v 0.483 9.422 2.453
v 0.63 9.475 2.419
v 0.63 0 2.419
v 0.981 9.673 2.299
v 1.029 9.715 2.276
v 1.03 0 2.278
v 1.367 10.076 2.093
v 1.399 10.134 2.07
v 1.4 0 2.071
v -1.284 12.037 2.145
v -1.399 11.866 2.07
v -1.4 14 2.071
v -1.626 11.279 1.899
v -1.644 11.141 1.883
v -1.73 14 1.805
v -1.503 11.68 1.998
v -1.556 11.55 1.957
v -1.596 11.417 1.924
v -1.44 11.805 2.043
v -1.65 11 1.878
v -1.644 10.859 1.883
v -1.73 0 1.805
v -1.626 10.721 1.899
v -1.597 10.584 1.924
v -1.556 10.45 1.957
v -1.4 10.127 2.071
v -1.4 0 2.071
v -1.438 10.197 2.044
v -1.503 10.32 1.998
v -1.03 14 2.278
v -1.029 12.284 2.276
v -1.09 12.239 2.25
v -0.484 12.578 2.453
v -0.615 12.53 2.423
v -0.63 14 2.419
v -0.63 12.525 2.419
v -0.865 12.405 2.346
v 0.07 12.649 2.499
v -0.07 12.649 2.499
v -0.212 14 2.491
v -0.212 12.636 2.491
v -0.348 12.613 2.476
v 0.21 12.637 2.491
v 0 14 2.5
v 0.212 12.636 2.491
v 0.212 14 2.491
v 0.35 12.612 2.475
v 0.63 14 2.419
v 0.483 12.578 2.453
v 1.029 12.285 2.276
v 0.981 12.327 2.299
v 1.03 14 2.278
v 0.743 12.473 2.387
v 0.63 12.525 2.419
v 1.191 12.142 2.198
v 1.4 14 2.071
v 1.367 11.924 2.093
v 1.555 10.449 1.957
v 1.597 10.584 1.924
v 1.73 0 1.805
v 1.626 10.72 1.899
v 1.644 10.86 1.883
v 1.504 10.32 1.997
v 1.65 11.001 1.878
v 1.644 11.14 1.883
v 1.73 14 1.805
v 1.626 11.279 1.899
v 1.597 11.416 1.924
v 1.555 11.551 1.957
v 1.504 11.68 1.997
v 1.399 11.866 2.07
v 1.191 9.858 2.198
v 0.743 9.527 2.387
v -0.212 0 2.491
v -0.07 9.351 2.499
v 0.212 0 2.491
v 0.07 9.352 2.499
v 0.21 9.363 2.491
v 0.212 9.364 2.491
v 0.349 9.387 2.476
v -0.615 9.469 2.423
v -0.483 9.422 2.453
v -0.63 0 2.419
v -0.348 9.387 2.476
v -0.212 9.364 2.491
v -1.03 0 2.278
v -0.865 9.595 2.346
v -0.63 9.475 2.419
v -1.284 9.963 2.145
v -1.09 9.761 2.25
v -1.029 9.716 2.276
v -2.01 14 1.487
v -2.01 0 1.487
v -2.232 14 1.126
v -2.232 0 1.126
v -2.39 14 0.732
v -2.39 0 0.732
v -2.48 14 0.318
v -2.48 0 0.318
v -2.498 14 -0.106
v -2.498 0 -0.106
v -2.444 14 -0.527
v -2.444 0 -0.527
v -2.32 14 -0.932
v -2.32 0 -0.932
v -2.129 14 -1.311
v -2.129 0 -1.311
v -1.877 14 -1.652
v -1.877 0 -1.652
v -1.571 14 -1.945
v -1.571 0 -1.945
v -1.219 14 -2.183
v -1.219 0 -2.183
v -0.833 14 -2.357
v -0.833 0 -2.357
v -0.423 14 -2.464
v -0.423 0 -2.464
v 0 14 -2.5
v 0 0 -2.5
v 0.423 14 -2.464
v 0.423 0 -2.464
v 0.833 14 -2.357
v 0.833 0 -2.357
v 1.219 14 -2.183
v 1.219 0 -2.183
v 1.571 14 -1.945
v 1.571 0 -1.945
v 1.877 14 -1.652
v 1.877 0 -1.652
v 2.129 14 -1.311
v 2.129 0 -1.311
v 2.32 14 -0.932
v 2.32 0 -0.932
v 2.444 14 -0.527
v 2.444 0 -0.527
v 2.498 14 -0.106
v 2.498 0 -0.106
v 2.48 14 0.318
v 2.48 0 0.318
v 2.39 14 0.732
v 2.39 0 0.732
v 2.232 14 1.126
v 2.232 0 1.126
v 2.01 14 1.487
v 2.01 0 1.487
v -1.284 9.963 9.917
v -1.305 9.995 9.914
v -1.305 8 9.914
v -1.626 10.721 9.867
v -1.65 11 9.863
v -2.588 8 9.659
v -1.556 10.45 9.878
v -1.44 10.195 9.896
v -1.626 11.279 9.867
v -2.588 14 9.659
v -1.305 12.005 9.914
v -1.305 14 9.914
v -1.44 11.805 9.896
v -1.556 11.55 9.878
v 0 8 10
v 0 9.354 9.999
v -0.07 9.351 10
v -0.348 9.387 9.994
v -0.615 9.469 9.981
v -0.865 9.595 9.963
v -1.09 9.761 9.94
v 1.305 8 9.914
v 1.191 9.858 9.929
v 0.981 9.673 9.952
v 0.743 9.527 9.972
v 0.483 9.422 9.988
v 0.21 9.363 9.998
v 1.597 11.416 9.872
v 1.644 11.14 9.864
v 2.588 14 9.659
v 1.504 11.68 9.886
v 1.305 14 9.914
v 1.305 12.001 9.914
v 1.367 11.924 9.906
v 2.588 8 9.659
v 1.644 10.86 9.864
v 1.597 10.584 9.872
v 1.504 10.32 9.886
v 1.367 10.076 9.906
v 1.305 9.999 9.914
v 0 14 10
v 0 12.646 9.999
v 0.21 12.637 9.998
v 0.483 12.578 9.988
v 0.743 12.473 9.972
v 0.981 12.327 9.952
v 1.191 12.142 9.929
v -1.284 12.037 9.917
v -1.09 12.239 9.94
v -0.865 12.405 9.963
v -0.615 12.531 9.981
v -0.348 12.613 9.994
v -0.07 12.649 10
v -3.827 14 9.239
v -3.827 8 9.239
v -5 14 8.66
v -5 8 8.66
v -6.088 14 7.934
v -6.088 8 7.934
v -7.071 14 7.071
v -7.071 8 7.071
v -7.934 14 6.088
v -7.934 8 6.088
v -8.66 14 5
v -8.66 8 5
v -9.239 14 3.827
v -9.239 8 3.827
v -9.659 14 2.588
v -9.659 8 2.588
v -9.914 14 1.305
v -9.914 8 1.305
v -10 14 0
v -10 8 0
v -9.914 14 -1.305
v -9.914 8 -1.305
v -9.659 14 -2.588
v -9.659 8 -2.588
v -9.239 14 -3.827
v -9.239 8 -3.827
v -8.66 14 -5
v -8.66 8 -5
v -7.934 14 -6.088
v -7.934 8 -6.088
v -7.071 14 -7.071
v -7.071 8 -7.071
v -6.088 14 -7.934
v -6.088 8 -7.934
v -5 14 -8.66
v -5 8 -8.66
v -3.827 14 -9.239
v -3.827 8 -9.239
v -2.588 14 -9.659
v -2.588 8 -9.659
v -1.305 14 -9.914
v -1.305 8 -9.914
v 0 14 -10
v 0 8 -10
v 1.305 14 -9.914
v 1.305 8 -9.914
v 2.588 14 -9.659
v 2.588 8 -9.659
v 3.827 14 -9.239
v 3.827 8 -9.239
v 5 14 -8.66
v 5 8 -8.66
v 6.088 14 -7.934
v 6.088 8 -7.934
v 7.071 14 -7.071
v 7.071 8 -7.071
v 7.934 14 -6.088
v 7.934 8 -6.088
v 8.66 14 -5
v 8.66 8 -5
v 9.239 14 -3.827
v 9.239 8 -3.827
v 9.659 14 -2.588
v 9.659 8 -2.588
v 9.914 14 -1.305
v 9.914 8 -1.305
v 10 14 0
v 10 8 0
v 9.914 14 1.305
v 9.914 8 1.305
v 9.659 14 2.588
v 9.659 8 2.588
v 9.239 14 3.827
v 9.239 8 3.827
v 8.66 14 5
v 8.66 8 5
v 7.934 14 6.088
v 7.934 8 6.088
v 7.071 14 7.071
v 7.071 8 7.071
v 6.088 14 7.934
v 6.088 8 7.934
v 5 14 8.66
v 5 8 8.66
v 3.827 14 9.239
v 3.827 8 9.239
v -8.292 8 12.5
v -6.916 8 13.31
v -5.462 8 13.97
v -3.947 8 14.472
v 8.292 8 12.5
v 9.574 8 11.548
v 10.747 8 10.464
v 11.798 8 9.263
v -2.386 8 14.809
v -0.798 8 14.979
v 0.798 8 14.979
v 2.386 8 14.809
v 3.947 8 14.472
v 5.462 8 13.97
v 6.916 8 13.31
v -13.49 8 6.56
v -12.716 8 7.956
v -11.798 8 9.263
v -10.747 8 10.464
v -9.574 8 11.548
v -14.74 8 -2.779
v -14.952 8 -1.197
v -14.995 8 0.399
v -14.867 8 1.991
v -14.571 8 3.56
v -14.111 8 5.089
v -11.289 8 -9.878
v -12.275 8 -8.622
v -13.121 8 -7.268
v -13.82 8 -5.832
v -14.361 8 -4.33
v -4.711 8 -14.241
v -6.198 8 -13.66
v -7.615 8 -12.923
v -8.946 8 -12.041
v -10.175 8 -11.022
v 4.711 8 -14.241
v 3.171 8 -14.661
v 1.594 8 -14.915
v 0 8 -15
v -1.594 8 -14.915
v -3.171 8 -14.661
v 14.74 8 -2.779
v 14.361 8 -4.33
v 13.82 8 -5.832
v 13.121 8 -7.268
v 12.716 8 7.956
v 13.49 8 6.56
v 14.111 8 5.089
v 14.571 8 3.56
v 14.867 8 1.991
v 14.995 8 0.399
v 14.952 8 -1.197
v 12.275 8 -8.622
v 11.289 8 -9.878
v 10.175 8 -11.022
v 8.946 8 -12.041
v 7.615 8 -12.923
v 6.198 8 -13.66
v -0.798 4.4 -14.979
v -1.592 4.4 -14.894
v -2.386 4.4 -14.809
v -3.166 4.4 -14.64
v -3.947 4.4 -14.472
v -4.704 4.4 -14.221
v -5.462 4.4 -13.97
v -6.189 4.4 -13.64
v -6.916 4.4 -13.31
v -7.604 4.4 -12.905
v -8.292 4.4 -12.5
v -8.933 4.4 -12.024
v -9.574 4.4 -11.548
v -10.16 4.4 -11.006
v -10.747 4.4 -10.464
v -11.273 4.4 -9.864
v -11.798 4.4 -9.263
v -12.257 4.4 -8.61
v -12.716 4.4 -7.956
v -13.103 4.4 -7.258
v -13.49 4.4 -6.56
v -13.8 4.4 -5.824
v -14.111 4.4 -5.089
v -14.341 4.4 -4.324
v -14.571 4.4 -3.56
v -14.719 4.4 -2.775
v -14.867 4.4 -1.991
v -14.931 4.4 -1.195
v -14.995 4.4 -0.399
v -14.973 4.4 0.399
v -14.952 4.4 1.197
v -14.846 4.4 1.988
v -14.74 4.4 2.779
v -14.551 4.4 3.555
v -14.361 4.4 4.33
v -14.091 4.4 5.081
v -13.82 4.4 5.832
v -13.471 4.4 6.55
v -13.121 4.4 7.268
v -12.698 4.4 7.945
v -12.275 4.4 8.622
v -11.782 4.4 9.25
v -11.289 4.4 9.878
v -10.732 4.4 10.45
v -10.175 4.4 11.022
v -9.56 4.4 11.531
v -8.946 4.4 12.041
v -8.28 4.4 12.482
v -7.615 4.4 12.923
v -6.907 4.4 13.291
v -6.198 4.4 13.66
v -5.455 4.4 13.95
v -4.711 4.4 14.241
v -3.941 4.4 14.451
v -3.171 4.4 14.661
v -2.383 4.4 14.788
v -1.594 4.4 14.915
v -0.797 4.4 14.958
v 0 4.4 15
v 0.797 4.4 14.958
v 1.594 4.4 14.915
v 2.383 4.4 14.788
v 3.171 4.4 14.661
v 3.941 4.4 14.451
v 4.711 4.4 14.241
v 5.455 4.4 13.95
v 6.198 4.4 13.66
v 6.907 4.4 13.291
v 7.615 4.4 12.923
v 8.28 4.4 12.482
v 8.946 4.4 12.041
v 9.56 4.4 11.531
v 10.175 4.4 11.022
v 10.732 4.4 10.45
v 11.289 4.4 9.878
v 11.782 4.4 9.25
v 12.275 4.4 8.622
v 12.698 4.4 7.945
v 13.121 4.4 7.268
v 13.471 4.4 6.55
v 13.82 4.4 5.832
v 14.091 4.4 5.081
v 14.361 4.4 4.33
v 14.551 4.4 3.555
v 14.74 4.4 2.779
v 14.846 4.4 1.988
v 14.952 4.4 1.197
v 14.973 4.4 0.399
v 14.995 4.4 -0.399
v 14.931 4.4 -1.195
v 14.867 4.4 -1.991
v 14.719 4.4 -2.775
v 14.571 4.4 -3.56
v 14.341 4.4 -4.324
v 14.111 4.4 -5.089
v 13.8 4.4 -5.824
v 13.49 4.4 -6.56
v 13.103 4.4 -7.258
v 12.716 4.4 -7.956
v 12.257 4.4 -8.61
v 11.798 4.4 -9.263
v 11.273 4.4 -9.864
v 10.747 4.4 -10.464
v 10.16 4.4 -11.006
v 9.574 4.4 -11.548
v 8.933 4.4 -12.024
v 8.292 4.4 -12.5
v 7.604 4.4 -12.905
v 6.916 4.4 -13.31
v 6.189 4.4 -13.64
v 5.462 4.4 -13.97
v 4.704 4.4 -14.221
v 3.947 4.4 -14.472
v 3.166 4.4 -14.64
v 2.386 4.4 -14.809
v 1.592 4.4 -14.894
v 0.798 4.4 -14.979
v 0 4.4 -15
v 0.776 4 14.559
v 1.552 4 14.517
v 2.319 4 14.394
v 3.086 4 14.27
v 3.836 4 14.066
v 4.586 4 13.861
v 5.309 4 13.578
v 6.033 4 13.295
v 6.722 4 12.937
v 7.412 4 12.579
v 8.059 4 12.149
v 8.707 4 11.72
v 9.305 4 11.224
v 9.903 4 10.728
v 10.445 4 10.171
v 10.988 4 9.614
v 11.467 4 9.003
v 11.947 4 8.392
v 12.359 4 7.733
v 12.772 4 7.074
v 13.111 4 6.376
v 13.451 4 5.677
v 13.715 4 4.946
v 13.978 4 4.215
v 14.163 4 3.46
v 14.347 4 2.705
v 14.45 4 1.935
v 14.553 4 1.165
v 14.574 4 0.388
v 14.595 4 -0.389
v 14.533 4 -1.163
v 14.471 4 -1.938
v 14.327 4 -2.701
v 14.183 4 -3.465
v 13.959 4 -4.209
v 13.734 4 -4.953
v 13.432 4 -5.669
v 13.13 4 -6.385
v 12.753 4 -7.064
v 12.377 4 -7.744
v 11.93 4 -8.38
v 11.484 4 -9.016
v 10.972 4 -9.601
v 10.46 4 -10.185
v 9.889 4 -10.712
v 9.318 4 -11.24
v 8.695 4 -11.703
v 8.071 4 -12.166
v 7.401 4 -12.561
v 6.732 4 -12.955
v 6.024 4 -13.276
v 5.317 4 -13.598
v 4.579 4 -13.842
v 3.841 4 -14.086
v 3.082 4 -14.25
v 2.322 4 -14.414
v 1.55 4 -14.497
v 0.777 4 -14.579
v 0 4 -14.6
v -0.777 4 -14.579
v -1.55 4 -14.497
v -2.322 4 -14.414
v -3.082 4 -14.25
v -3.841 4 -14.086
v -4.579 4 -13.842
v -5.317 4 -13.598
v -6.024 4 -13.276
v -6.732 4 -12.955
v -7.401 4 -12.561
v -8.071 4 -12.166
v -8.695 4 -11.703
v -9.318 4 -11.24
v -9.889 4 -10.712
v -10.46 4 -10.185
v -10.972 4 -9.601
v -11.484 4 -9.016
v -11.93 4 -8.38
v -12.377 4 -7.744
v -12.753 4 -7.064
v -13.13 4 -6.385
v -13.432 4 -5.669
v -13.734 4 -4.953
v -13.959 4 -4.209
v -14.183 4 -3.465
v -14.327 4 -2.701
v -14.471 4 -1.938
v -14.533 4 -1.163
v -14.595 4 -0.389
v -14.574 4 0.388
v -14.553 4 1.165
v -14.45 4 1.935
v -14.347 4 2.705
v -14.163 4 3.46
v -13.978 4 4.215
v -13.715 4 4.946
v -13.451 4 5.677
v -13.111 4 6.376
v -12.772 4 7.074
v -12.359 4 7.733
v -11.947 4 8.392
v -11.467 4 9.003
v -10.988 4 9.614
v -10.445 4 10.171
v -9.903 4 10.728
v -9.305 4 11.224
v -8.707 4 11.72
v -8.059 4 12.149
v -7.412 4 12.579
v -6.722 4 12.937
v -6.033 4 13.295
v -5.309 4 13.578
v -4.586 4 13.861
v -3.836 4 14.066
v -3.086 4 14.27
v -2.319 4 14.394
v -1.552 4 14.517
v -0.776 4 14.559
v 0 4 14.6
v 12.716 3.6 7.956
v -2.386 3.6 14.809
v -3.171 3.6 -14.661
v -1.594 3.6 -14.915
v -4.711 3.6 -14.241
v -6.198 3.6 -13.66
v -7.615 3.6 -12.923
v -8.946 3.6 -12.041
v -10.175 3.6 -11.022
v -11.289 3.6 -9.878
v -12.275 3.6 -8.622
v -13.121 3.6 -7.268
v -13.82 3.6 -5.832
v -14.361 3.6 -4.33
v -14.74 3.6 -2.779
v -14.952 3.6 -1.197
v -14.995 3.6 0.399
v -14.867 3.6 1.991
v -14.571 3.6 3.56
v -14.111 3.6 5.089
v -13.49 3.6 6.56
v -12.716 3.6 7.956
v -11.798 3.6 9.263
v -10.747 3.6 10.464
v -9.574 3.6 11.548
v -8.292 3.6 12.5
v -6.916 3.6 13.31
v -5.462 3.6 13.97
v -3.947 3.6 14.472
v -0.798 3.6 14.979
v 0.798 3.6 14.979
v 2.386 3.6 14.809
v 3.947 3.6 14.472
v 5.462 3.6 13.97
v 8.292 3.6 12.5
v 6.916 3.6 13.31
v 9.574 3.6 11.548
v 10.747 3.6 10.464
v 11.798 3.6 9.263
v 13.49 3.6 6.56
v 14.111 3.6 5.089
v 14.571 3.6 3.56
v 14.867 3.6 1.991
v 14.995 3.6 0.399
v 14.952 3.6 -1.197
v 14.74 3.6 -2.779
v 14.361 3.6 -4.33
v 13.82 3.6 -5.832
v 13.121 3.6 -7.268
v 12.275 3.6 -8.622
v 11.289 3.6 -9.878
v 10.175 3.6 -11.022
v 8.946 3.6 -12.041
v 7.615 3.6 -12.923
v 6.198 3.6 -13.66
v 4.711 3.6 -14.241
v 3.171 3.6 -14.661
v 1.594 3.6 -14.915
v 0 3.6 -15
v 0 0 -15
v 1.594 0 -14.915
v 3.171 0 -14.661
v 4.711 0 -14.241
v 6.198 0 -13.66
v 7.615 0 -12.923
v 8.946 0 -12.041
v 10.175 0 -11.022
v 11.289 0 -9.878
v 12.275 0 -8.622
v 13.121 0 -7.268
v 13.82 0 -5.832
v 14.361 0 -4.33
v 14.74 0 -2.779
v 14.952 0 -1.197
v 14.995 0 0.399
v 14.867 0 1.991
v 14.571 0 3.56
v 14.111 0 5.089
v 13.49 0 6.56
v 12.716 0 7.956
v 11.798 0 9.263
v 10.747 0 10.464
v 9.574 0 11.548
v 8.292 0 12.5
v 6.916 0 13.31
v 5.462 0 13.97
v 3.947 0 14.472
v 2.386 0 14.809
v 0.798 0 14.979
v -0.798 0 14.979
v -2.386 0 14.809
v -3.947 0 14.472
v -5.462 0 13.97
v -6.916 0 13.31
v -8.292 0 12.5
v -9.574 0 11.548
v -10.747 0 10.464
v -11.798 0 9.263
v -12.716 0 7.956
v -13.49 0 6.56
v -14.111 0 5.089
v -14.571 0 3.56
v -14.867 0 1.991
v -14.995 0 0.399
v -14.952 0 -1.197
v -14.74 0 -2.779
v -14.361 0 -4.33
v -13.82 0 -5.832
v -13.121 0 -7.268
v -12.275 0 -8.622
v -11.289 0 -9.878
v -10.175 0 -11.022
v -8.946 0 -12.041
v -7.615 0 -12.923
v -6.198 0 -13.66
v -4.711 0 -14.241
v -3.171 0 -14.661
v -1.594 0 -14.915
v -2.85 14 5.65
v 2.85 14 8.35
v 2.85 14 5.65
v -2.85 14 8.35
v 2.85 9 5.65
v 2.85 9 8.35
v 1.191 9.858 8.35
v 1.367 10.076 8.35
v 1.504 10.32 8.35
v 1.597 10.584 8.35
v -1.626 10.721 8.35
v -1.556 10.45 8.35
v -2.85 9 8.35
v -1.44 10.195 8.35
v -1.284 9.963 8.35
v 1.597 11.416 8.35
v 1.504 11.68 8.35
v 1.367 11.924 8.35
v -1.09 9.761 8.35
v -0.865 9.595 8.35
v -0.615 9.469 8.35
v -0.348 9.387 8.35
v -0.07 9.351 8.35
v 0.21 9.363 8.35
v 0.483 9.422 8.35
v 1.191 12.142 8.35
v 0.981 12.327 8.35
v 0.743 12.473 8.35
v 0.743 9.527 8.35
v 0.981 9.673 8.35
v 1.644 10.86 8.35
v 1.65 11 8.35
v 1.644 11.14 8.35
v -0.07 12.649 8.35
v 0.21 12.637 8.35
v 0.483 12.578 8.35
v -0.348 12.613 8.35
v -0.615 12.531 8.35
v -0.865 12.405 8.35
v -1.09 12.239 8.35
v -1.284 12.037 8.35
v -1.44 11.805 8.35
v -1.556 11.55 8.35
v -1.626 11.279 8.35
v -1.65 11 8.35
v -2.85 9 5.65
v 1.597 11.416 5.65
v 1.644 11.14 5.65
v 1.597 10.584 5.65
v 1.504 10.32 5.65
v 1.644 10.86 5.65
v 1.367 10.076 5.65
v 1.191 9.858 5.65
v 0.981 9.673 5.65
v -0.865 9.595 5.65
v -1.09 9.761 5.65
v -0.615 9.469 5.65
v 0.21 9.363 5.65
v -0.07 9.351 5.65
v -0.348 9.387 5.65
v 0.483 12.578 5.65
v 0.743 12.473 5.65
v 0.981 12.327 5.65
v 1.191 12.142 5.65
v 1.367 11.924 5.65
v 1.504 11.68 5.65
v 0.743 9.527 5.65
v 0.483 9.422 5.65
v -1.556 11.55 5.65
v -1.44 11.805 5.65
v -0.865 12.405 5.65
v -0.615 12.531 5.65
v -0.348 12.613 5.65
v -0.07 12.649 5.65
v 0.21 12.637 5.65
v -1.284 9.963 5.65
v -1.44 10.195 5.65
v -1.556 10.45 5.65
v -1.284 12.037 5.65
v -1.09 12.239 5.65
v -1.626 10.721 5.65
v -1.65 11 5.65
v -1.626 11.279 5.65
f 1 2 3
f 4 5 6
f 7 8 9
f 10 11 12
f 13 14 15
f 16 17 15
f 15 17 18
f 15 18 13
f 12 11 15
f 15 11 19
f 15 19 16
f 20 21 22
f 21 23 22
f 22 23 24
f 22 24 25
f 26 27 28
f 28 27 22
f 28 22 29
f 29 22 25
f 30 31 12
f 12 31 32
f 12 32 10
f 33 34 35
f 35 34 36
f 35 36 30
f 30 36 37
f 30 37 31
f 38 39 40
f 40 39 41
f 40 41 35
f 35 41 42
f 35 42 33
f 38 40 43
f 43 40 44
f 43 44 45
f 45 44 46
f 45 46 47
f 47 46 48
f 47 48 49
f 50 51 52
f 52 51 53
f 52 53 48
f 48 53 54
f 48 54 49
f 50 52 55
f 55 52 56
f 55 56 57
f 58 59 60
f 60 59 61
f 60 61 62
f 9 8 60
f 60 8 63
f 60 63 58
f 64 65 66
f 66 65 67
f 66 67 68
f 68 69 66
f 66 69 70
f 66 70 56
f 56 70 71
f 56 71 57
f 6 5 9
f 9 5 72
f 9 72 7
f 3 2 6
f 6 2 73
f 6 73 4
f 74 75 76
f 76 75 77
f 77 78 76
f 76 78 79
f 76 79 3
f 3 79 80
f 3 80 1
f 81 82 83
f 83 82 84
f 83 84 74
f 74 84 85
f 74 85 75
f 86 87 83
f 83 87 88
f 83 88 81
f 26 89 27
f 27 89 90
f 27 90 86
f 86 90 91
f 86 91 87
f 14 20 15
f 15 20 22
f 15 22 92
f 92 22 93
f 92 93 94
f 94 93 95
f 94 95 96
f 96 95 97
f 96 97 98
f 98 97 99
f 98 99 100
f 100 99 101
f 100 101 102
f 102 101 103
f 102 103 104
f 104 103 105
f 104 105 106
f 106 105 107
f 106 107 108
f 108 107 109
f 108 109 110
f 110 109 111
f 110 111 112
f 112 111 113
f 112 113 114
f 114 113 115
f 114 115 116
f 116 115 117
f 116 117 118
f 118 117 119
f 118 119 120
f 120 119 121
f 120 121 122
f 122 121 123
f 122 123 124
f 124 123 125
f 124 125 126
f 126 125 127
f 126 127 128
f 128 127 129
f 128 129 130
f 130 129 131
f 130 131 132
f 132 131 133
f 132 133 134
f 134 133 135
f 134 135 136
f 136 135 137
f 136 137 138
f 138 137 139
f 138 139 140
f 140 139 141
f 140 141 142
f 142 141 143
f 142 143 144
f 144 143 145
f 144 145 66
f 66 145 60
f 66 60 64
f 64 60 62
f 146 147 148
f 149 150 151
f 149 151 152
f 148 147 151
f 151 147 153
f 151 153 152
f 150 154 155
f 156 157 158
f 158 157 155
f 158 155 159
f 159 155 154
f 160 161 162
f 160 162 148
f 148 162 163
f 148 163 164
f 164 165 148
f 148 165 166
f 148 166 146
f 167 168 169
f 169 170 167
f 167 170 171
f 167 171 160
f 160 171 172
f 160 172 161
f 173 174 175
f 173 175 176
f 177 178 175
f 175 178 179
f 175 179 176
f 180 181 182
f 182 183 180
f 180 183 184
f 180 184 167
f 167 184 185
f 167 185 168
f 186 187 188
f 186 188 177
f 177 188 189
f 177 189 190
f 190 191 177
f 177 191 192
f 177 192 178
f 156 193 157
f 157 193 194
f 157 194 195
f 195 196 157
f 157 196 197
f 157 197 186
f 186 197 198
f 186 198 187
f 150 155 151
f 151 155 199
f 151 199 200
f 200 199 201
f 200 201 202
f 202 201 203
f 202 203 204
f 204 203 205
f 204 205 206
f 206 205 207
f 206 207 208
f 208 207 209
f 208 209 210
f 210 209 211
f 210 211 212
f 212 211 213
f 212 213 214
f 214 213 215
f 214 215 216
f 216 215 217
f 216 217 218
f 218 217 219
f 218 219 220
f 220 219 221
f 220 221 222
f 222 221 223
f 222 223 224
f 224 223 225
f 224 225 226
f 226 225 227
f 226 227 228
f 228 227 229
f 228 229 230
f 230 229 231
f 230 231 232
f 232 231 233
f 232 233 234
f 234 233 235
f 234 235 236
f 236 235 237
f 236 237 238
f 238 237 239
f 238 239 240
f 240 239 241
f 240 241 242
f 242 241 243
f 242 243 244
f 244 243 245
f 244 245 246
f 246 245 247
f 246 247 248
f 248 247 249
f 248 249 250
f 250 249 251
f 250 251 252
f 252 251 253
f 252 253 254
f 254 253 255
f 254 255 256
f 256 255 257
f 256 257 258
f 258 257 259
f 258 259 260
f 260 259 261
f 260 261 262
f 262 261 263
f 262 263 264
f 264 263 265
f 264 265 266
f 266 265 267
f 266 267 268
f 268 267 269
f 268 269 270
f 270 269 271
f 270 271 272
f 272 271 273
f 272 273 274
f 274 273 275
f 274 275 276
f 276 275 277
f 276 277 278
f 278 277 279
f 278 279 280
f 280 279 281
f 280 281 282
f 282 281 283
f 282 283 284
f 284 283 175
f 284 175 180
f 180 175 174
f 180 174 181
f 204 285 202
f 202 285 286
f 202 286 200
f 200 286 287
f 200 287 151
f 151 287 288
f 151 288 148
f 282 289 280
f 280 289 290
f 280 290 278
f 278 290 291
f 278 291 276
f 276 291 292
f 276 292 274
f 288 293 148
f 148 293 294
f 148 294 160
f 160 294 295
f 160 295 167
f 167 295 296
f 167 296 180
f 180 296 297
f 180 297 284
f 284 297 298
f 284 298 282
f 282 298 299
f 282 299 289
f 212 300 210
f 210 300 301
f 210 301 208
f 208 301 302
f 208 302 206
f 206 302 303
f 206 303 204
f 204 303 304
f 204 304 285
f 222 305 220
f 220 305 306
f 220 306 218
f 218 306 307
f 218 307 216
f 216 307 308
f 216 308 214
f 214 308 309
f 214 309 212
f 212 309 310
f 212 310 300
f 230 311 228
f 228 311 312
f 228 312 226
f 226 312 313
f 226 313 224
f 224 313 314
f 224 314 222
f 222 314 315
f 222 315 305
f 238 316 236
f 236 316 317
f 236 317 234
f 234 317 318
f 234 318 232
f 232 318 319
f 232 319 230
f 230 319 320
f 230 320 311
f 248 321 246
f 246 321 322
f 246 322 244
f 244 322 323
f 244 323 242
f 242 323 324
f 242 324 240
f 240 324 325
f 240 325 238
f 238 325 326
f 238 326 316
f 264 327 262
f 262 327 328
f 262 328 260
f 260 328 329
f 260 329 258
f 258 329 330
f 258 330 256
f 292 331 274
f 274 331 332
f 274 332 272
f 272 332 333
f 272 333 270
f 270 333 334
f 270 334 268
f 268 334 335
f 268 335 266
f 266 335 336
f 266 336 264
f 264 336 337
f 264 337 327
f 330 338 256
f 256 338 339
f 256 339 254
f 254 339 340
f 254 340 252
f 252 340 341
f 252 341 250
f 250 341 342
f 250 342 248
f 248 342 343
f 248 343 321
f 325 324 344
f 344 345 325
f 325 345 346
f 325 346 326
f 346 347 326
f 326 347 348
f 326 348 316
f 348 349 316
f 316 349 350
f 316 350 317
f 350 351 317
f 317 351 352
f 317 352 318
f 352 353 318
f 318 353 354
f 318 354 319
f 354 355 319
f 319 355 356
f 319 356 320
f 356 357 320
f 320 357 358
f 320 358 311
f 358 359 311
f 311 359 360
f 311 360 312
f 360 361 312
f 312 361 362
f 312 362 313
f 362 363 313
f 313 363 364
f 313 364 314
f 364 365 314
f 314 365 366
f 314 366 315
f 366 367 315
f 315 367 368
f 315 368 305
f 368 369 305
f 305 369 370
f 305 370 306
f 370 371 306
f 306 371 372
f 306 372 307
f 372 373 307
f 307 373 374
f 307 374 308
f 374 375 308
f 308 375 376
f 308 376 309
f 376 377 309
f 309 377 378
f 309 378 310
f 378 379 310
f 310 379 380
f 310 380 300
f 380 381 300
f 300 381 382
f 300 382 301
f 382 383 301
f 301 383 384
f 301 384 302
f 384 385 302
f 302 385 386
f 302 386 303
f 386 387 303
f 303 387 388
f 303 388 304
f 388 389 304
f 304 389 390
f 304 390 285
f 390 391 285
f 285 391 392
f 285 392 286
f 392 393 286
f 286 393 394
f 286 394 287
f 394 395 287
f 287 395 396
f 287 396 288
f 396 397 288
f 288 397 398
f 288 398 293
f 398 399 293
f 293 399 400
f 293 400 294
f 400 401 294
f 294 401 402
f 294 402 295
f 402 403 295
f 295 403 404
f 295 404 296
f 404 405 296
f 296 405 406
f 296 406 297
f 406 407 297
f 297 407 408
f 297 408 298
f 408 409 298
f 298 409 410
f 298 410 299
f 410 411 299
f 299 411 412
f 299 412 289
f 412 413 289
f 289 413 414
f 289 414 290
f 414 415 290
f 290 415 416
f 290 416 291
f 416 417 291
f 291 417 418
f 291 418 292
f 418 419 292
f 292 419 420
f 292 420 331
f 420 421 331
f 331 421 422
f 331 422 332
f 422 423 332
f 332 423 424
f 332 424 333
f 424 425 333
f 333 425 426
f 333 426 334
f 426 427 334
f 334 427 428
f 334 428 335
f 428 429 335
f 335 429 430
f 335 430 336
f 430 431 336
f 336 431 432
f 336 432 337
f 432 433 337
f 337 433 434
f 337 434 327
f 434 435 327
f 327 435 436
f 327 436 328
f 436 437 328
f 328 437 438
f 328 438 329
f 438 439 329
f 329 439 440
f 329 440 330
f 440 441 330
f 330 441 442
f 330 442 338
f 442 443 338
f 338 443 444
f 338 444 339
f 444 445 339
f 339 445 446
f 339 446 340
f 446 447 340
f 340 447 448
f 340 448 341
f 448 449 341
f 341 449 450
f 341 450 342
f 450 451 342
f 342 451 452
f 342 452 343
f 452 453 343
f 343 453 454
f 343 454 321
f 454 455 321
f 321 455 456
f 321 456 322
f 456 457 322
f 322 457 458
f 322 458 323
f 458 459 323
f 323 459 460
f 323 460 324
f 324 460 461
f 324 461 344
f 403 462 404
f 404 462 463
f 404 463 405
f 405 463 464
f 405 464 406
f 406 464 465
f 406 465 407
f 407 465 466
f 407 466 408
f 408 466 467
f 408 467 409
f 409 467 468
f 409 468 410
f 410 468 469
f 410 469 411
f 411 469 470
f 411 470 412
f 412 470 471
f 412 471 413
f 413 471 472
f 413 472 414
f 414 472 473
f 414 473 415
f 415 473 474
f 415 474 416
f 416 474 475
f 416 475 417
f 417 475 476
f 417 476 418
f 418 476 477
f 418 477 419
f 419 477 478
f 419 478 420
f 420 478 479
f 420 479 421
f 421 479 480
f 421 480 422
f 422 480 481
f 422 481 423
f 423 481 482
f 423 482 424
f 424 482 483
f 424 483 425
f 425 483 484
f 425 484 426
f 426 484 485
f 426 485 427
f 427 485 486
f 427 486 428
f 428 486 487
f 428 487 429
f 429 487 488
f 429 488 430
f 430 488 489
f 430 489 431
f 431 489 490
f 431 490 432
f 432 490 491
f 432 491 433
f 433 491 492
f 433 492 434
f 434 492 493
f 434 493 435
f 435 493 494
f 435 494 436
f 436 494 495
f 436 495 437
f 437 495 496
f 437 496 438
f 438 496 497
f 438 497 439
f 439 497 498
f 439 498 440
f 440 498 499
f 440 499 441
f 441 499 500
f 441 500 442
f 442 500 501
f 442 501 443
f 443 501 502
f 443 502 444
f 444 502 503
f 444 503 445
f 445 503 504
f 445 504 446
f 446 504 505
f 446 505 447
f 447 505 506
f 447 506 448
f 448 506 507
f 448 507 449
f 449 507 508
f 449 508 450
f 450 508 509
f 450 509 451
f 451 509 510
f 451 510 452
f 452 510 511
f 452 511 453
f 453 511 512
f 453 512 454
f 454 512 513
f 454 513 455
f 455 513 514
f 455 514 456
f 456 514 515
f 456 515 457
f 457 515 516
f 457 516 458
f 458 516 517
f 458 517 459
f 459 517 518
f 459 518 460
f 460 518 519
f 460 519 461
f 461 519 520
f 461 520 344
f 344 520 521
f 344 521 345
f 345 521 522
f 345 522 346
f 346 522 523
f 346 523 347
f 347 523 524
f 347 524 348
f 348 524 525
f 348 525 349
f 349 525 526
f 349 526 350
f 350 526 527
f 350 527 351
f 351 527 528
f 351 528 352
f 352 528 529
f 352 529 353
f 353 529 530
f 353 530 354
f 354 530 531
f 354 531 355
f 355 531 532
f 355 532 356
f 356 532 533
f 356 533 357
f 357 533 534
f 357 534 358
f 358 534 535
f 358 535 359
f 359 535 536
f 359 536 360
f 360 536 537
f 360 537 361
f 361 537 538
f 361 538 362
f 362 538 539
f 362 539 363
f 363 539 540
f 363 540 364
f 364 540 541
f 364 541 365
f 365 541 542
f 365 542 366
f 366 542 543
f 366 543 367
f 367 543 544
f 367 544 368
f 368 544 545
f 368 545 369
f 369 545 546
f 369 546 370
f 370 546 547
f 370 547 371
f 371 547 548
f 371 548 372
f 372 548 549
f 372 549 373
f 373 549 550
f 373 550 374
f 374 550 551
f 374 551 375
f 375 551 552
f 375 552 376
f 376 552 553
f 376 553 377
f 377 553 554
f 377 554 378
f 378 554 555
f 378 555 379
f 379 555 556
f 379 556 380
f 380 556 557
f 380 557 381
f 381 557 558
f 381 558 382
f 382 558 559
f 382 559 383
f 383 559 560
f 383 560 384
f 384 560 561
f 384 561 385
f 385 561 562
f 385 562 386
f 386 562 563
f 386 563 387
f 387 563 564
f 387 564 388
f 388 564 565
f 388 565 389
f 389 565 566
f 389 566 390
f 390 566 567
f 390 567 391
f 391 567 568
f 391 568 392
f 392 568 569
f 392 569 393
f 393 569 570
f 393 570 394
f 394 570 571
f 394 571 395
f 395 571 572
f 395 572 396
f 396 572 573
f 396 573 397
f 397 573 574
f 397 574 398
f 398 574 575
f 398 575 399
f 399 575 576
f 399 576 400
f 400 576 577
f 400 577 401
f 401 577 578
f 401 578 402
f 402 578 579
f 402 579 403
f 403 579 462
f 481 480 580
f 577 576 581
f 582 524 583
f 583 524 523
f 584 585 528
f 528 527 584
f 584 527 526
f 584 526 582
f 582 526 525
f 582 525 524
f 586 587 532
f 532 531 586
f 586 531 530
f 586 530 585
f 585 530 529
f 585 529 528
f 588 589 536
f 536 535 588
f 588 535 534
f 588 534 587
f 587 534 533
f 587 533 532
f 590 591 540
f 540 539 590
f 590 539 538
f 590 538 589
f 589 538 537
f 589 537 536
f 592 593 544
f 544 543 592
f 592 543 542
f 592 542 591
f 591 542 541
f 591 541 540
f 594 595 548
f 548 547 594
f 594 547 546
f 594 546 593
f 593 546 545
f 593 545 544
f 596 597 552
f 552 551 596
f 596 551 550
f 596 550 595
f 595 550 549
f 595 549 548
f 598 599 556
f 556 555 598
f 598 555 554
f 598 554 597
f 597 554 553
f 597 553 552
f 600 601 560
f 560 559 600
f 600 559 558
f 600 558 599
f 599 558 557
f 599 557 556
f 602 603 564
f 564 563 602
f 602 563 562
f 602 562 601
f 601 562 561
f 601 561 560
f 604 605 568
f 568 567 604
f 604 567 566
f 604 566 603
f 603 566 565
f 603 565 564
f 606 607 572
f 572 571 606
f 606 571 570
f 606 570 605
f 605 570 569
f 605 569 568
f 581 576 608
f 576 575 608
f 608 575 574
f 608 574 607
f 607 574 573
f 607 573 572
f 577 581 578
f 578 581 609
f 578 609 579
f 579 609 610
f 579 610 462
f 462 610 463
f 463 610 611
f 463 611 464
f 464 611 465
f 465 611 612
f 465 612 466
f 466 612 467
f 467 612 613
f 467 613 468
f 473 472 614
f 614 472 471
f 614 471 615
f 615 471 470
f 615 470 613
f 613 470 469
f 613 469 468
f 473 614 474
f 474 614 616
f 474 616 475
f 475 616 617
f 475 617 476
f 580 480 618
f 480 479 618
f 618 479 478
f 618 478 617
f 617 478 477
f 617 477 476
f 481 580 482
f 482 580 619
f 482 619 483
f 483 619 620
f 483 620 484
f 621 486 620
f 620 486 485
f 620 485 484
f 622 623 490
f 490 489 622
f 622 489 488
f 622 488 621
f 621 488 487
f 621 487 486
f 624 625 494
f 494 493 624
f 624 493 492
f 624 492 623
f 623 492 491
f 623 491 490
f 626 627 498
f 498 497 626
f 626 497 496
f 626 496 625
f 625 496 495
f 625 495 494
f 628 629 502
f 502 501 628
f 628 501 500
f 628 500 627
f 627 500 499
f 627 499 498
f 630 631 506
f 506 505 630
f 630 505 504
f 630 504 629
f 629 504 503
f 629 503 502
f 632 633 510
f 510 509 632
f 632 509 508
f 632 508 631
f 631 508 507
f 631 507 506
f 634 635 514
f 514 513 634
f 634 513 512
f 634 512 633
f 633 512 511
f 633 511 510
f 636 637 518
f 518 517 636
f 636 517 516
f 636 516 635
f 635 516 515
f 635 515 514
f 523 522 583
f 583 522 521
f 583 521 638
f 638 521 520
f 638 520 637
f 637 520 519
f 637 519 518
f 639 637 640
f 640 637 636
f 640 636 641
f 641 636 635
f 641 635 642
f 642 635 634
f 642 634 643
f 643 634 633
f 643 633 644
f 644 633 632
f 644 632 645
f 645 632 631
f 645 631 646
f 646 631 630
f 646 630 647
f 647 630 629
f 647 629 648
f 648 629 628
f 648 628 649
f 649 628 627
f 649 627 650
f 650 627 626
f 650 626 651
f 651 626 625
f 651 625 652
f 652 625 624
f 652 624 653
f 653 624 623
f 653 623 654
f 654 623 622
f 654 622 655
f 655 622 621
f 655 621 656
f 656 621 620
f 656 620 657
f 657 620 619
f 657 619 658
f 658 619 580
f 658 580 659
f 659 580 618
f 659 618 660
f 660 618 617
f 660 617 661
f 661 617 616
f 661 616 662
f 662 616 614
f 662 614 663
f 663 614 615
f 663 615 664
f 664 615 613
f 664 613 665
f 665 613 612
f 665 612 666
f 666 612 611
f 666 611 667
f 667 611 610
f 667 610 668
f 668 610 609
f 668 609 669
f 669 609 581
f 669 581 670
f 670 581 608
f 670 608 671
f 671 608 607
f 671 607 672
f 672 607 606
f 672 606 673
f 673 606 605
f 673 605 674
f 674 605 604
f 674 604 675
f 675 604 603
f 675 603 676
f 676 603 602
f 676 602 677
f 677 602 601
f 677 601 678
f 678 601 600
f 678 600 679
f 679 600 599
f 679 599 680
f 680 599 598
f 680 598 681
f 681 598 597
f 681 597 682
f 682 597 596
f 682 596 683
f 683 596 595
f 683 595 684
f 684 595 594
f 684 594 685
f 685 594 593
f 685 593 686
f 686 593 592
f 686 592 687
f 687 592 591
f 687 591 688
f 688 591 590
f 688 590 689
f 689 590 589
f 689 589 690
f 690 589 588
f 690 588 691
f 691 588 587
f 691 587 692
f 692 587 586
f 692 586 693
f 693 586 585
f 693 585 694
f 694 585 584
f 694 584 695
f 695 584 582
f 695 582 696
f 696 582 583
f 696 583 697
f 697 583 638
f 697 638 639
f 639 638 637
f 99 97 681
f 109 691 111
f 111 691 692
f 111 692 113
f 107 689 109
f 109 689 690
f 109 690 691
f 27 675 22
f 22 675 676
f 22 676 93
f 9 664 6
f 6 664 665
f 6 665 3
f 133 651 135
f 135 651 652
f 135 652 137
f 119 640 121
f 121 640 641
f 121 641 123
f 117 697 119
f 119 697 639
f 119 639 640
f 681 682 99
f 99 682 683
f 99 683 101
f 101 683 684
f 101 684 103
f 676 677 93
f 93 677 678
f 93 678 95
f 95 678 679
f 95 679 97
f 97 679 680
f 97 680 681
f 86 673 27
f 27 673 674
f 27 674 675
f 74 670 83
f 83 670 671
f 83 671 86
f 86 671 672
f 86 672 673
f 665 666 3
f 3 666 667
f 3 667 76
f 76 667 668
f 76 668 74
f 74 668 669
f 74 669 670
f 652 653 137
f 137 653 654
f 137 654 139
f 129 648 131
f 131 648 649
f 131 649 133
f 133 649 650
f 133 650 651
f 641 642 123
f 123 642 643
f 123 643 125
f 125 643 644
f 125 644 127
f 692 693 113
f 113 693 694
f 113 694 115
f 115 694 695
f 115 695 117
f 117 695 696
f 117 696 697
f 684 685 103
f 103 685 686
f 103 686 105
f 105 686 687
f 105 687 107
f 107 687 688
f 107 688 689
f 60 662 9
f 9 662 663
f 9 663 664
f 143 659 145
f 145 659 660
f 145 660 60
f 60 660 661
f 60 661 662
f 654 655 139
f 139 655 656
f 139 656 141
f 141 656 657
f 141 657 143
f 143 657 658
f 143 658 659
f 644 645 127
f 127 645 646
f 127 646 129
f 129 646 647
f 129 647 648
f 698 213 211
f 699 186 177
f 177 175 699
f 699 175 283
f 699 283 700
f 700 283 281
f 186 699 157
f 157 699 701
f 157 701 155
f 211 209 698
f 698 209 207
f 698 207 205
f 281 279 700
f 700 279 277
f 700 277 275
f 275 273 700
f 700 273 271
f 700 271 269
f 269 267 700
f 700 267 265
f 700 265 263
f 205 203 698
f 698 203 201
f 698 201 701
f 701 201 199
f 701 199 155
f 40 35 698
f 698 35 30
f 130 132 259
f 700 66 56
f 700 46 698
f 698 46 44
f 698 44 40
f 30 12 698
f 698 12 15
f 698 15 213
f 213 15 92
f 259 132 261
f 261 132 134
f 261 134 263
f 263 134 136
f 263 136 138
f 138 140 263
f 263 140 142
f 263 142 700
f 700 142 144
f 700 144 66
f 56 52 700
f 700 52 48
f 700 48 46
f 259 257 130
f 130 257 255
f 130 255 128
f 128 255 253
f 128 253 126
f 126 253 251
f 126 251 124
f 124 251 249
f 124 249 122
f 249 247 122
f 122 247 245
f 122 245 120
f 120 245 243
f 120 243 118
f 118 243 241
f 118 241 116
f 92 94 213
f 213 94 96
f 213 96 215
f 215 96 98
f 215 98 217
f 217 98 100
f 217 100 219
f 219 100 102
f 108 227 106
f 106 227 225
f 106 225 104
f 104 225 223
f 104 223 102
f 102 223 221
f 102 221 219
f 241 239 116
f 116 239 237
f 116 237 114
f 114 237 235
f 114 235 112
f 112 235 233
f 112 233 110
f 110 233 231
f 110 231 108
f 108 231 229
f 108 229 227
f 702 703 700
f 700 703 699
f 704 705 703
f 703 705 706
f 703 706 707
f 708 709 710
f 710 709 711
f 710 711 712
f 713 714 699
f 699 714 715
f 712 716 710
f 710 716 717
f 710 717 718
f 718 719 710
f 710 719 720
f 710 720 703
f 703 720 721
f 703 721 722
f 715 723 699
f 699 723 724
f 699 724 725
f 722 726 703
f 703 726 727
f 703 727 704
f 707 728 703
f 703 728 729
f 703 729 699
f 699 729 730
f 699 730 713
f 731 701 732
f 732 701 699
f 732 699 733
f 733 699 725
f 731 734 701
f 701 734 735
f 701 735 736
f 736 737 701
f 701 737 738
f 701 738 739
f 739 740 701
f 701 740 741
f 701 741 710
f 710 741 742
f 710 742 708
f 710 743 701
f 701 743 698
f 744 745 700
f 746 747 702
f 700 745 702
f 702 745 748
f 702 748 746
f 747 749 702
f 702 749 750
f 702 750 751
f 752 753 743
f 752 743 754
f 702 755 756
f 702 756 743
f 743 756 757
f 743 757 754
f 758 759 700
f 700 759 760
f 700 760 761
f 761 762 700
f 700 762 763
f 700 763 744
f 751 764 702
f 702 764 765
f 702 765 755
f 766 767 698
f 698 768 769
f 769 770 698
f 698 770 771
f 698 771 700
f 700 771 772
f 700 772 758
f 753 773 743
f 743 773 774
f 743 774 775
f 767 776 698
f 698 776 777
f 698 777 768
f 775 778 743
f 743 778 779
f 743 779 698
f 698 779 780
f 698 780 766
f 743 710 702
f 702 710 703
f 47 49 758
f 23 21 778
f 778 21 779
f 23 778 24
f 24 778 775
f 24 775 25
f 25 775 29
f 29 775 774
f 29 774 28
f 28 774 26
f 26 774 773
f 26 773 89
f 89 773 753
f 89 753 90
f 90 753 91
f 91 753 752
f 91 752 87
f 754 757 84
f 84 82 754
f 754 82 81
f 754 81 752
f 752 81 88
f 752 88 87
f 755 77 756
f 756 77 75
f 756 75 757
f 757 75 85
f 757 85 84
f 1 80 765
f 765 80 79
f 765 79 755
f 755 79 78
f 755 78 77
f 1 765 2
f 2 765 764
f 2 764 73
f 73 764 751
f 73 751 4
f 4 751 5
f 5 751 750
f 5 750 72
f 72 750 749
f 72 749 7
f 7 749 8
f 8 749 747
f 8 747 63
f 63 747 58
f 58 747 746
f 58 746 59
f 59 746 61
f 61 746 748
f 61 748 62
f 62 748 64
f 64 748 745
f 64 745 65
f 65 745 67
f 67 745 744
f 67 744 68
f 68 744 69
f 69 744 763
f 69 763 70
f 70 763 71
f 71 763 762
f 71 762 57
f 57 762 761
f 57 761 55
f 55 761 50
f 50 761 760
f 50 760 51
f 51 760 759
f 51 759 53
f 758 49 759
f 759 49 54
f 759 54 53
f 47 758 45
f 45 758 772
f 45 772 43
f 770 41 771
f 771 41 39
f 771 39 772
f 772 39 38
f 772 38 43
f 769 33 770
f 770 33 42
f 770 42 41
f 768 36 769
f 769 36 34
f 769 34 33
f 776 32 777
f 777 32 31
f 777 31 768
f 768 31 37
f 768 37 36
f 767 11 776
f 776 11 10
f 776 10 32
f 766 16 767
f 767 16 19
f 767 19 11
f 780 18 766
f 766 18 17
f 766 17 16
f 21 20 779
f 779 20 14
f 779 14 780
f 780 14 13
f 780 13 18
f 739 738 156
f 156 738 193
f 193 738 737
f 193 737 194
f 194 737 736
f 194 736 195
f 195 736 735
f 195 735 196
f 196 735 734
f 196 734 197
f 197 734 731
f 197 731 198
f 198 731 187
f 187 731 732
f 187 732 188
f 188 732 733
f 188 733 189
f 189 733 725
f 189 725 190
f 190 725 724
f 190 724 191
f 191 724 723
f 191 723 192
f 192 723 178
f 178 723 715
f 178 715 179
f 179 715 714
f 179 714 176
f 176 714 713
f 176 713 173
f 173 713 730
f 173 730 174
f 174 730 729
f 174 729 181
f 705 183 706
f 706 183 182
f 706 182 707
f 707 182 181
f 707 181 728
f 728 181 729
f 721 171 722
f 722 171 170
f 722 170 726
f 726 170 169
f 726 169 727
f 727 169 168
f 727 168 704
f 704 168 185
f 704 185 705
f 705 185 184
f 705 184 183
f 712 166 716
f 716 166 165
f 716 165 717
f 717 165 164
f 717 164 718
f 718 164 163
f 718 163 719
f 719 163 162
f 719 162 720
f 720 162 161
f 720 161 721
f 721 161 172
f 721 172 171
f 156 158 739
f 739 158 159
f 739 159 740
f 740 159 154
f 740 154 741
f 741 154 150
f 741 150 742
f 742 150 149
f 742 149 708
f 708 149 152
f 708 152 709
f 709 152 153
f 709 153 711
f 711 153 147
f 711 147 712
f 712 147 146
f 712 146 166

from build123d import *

# Parameters (mm, degrees)
BOSS_EXTRUDE1_START = 6
SKETCH2_R           = 10
SKETCH2_R_2         = 2.5
BOSS_EXTRUDE1_DEPTH = 6
SKETCH3_W           = 5.7
SKETCH3_H           = 2.7
CUT_EXTRUDE1_DEPTH  = 5
SKETCH4_R           = 1.65
CUT_EXTRUDE2_DEPTH  = 35


with BuildPart() as part:
    # Sketch1 → Revolve1 (revolve)
    with BuildSketch(Plane.XY, mode=Mode.PRIVATE) as revolve1_sk:
        Polygon((2.5, 8), (15, 8), (15, 4.4), (14.6, 4), (15, 3.6), (15, 0), (2.5, 0), align=None)
    revolve(revolve1_sk.sketch.rotate(Axis((0, 0, 0), (0, 1, 0)), 90), axis=Axis((0, 0, 0), (0, 1, 0)))

    # Sketch2 → Boss-Extrude1 (add)
    with BuildSketch(Plane(origin=(0, 8, 0), x_dir=(1, 0, 0), z_dir=(0, 1, 0)).offset(BOSS_EXTRUDE1_START)):
        with Locations(Location((0, 0, 0), (0, 0, 270))):
            Circle(SKETCH2_R)
        with Locations(Location((0, 0, 0), (0, 0, 90))):
            Circle(SKETCH2_R_2, mode=Mode.SUBTRACT)
    extrude(amount=-BOSS_EXTRUDE1_DEPTH)

    # Sketch3 → Cut-Extrude1 (cut)
    with BuildSketch(Plane(origin=(0, 14, 0), x_dir=(1, 0, 0), z_dir=(0, 1, 0))):
        with Locations((0, -7)):
            Rectangle(SKETCH3_W, SKETCH3_H)
    extrude(amount=-CUT_EXTRUDE1_DEPTH, mode=Mode.SUBTRACT)

    # Sketch4 → Cut-Extrude2 (cut)
    with BuildSketch(Plane.XY):
        with Locations(Location((0, 11, 0), (0, 0, 180))):
            Circle(SKETCH4_R)
    extrude(amount=CUT_EXTRUDE2_DEPTH, mode=Mode.SUBTRACT)


solid = part.part
